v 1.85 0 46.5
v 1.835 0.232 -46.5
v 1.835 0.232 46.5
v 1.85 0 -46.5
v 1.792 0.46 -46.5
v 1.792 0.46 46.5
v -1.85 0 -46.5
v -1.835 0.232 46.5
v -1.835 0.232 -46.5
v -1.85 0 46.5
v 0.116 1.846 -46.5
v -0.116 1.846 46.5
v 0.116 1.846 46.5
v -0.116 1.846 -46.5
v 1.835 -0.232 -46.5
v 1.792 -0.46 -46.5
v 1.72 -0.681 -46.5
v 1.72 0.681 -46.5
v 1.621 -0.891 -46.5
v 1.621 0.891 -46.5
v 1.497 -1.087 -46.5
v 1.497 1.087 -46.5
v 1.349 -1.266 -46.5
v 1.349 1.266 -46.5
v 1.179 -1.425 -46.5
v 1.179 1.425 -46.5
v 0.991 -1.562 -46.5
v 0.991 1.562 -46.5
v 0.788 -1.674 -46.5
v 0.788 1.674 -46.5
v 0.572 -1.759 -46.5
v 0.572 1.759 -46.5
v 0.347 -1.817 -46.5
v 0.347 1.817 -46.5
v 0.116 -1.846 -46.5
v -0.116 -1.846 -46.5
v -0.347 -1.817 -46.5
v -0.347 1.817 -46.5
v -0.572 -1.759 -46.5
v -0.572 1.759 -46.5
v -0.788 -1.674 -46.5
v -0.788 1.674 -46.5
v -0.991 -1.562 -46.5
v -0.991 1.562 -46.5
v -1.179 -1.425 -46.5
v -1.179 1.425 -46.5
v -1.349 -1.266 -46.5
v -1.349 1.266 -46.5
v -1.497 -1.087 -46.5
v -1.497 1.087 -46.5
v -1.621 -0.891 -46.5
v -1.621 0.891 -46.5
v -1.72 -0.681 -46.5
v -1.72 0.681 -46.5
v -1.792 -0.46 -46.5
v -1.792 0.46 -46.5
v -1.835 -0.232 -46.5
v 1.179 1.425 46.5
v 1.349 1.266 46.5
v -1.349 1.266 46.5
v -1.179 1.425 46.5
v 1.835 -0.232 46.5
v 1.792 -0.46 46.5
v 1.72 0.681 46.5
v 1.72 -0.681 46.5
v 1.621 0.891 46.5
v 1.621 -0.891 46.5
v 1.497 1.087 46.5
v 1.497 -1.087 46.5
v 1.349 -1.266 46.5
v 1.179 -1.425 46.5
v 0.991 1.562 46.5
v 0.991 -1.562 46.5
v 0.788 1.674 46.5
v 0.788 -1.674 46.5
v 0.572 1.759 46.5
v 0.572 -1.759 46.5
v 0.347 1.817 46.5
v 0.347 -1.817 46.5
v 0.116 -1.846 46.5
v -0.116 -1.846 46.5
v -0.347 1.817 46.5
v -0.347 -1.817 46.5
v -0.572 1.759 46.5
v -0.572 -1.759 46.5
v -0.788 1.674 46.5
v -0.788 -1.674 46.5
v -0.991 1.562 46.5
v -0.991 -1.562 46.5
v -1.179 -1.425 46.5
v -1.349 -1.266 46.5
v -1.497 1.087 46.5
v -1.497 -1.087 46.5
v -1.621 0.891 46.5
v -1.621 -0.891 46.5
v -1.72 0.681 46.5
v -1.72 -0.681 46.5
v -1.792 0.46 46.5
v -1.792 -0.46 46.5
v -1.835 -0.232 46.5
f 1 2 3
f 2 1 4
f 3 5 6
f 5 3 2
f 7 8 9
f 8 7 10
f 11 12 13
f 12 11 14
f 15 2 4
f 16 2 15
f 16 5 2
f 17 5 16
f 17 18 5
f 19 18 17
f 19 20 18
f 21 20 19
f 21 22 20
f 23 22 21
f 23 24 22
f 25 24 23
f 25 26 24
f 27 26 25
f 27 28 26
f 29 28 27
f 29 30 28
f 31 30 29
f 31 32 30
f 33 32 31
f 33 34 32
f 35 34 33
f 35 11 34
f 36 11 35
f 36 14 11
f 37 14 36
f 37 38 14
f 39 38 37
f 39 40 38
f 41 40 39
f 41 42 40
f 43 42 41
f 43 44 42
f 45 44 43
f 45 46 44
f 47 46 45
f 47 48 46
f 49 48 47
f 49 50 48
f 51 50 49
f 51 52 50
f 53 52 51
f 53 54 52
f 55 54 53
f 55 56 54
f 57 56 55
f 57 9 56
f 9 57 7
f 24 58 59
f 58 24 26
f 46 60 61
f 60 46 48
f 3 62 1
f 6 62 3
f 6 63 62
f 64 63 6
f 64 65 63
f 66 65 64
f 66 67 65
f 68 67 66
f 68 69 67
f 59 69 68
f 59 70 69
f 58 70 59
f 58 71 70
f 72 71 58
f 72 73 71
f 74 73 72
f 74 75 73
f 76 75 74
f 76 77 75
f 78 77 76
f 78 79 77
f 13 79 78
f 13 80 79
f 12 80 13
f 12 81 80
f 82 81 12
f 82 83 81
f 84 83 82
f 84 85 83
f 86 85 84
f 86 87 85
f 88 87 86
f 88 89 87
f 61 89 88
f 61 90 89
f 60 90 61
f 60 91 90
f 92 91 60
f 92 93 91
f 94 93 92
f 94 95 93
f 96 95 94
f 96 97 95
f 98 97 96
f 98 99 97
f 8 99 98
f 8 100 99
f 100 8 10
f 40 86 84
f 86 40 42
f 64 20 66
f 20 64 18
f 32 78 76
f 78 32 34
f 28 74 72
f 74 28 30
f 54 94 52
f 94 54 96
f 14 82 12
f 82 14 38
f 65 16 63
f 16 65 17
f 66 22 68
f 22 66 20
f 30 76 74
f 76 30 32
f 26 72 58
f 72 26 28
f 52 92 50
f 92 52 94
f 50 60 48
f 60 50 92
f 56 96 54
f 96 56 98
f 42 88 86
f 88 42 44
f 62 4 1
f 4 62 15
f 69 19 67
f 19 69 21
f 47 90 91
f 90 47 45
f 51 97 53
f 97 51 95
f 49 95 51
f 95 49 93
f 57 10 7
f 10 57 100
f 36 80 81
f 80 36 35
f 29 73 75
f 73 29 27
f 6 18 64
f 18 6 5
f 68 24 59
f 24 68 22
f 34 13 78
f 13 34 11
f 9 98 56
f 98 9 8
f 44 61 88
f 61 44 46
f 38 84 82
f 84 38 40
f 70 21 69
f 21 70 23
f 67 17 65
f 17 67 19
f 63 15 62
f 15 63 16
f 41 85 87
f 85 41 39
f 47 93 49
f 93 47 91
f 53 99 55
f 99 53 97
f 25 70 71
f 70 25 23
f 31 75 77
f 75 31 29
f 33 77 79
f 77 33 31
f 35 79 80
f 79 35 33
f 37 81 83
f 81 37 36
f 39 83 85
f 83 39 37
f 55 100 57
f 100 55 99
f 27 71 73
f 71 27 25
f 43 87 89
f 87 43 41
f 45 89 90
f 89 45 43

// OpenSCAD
$fn = 50;


difference() {
	union() {
		translate(v = [0, 0, -46.5000000000]) {
			cylinder(h = 93, r = 1.8500000000);
		}
	}
	union() {
		translate(v = [0, 0, -100.0000000000]) {
			cylinder(h = 200, r = 0);
		}
	}
}
